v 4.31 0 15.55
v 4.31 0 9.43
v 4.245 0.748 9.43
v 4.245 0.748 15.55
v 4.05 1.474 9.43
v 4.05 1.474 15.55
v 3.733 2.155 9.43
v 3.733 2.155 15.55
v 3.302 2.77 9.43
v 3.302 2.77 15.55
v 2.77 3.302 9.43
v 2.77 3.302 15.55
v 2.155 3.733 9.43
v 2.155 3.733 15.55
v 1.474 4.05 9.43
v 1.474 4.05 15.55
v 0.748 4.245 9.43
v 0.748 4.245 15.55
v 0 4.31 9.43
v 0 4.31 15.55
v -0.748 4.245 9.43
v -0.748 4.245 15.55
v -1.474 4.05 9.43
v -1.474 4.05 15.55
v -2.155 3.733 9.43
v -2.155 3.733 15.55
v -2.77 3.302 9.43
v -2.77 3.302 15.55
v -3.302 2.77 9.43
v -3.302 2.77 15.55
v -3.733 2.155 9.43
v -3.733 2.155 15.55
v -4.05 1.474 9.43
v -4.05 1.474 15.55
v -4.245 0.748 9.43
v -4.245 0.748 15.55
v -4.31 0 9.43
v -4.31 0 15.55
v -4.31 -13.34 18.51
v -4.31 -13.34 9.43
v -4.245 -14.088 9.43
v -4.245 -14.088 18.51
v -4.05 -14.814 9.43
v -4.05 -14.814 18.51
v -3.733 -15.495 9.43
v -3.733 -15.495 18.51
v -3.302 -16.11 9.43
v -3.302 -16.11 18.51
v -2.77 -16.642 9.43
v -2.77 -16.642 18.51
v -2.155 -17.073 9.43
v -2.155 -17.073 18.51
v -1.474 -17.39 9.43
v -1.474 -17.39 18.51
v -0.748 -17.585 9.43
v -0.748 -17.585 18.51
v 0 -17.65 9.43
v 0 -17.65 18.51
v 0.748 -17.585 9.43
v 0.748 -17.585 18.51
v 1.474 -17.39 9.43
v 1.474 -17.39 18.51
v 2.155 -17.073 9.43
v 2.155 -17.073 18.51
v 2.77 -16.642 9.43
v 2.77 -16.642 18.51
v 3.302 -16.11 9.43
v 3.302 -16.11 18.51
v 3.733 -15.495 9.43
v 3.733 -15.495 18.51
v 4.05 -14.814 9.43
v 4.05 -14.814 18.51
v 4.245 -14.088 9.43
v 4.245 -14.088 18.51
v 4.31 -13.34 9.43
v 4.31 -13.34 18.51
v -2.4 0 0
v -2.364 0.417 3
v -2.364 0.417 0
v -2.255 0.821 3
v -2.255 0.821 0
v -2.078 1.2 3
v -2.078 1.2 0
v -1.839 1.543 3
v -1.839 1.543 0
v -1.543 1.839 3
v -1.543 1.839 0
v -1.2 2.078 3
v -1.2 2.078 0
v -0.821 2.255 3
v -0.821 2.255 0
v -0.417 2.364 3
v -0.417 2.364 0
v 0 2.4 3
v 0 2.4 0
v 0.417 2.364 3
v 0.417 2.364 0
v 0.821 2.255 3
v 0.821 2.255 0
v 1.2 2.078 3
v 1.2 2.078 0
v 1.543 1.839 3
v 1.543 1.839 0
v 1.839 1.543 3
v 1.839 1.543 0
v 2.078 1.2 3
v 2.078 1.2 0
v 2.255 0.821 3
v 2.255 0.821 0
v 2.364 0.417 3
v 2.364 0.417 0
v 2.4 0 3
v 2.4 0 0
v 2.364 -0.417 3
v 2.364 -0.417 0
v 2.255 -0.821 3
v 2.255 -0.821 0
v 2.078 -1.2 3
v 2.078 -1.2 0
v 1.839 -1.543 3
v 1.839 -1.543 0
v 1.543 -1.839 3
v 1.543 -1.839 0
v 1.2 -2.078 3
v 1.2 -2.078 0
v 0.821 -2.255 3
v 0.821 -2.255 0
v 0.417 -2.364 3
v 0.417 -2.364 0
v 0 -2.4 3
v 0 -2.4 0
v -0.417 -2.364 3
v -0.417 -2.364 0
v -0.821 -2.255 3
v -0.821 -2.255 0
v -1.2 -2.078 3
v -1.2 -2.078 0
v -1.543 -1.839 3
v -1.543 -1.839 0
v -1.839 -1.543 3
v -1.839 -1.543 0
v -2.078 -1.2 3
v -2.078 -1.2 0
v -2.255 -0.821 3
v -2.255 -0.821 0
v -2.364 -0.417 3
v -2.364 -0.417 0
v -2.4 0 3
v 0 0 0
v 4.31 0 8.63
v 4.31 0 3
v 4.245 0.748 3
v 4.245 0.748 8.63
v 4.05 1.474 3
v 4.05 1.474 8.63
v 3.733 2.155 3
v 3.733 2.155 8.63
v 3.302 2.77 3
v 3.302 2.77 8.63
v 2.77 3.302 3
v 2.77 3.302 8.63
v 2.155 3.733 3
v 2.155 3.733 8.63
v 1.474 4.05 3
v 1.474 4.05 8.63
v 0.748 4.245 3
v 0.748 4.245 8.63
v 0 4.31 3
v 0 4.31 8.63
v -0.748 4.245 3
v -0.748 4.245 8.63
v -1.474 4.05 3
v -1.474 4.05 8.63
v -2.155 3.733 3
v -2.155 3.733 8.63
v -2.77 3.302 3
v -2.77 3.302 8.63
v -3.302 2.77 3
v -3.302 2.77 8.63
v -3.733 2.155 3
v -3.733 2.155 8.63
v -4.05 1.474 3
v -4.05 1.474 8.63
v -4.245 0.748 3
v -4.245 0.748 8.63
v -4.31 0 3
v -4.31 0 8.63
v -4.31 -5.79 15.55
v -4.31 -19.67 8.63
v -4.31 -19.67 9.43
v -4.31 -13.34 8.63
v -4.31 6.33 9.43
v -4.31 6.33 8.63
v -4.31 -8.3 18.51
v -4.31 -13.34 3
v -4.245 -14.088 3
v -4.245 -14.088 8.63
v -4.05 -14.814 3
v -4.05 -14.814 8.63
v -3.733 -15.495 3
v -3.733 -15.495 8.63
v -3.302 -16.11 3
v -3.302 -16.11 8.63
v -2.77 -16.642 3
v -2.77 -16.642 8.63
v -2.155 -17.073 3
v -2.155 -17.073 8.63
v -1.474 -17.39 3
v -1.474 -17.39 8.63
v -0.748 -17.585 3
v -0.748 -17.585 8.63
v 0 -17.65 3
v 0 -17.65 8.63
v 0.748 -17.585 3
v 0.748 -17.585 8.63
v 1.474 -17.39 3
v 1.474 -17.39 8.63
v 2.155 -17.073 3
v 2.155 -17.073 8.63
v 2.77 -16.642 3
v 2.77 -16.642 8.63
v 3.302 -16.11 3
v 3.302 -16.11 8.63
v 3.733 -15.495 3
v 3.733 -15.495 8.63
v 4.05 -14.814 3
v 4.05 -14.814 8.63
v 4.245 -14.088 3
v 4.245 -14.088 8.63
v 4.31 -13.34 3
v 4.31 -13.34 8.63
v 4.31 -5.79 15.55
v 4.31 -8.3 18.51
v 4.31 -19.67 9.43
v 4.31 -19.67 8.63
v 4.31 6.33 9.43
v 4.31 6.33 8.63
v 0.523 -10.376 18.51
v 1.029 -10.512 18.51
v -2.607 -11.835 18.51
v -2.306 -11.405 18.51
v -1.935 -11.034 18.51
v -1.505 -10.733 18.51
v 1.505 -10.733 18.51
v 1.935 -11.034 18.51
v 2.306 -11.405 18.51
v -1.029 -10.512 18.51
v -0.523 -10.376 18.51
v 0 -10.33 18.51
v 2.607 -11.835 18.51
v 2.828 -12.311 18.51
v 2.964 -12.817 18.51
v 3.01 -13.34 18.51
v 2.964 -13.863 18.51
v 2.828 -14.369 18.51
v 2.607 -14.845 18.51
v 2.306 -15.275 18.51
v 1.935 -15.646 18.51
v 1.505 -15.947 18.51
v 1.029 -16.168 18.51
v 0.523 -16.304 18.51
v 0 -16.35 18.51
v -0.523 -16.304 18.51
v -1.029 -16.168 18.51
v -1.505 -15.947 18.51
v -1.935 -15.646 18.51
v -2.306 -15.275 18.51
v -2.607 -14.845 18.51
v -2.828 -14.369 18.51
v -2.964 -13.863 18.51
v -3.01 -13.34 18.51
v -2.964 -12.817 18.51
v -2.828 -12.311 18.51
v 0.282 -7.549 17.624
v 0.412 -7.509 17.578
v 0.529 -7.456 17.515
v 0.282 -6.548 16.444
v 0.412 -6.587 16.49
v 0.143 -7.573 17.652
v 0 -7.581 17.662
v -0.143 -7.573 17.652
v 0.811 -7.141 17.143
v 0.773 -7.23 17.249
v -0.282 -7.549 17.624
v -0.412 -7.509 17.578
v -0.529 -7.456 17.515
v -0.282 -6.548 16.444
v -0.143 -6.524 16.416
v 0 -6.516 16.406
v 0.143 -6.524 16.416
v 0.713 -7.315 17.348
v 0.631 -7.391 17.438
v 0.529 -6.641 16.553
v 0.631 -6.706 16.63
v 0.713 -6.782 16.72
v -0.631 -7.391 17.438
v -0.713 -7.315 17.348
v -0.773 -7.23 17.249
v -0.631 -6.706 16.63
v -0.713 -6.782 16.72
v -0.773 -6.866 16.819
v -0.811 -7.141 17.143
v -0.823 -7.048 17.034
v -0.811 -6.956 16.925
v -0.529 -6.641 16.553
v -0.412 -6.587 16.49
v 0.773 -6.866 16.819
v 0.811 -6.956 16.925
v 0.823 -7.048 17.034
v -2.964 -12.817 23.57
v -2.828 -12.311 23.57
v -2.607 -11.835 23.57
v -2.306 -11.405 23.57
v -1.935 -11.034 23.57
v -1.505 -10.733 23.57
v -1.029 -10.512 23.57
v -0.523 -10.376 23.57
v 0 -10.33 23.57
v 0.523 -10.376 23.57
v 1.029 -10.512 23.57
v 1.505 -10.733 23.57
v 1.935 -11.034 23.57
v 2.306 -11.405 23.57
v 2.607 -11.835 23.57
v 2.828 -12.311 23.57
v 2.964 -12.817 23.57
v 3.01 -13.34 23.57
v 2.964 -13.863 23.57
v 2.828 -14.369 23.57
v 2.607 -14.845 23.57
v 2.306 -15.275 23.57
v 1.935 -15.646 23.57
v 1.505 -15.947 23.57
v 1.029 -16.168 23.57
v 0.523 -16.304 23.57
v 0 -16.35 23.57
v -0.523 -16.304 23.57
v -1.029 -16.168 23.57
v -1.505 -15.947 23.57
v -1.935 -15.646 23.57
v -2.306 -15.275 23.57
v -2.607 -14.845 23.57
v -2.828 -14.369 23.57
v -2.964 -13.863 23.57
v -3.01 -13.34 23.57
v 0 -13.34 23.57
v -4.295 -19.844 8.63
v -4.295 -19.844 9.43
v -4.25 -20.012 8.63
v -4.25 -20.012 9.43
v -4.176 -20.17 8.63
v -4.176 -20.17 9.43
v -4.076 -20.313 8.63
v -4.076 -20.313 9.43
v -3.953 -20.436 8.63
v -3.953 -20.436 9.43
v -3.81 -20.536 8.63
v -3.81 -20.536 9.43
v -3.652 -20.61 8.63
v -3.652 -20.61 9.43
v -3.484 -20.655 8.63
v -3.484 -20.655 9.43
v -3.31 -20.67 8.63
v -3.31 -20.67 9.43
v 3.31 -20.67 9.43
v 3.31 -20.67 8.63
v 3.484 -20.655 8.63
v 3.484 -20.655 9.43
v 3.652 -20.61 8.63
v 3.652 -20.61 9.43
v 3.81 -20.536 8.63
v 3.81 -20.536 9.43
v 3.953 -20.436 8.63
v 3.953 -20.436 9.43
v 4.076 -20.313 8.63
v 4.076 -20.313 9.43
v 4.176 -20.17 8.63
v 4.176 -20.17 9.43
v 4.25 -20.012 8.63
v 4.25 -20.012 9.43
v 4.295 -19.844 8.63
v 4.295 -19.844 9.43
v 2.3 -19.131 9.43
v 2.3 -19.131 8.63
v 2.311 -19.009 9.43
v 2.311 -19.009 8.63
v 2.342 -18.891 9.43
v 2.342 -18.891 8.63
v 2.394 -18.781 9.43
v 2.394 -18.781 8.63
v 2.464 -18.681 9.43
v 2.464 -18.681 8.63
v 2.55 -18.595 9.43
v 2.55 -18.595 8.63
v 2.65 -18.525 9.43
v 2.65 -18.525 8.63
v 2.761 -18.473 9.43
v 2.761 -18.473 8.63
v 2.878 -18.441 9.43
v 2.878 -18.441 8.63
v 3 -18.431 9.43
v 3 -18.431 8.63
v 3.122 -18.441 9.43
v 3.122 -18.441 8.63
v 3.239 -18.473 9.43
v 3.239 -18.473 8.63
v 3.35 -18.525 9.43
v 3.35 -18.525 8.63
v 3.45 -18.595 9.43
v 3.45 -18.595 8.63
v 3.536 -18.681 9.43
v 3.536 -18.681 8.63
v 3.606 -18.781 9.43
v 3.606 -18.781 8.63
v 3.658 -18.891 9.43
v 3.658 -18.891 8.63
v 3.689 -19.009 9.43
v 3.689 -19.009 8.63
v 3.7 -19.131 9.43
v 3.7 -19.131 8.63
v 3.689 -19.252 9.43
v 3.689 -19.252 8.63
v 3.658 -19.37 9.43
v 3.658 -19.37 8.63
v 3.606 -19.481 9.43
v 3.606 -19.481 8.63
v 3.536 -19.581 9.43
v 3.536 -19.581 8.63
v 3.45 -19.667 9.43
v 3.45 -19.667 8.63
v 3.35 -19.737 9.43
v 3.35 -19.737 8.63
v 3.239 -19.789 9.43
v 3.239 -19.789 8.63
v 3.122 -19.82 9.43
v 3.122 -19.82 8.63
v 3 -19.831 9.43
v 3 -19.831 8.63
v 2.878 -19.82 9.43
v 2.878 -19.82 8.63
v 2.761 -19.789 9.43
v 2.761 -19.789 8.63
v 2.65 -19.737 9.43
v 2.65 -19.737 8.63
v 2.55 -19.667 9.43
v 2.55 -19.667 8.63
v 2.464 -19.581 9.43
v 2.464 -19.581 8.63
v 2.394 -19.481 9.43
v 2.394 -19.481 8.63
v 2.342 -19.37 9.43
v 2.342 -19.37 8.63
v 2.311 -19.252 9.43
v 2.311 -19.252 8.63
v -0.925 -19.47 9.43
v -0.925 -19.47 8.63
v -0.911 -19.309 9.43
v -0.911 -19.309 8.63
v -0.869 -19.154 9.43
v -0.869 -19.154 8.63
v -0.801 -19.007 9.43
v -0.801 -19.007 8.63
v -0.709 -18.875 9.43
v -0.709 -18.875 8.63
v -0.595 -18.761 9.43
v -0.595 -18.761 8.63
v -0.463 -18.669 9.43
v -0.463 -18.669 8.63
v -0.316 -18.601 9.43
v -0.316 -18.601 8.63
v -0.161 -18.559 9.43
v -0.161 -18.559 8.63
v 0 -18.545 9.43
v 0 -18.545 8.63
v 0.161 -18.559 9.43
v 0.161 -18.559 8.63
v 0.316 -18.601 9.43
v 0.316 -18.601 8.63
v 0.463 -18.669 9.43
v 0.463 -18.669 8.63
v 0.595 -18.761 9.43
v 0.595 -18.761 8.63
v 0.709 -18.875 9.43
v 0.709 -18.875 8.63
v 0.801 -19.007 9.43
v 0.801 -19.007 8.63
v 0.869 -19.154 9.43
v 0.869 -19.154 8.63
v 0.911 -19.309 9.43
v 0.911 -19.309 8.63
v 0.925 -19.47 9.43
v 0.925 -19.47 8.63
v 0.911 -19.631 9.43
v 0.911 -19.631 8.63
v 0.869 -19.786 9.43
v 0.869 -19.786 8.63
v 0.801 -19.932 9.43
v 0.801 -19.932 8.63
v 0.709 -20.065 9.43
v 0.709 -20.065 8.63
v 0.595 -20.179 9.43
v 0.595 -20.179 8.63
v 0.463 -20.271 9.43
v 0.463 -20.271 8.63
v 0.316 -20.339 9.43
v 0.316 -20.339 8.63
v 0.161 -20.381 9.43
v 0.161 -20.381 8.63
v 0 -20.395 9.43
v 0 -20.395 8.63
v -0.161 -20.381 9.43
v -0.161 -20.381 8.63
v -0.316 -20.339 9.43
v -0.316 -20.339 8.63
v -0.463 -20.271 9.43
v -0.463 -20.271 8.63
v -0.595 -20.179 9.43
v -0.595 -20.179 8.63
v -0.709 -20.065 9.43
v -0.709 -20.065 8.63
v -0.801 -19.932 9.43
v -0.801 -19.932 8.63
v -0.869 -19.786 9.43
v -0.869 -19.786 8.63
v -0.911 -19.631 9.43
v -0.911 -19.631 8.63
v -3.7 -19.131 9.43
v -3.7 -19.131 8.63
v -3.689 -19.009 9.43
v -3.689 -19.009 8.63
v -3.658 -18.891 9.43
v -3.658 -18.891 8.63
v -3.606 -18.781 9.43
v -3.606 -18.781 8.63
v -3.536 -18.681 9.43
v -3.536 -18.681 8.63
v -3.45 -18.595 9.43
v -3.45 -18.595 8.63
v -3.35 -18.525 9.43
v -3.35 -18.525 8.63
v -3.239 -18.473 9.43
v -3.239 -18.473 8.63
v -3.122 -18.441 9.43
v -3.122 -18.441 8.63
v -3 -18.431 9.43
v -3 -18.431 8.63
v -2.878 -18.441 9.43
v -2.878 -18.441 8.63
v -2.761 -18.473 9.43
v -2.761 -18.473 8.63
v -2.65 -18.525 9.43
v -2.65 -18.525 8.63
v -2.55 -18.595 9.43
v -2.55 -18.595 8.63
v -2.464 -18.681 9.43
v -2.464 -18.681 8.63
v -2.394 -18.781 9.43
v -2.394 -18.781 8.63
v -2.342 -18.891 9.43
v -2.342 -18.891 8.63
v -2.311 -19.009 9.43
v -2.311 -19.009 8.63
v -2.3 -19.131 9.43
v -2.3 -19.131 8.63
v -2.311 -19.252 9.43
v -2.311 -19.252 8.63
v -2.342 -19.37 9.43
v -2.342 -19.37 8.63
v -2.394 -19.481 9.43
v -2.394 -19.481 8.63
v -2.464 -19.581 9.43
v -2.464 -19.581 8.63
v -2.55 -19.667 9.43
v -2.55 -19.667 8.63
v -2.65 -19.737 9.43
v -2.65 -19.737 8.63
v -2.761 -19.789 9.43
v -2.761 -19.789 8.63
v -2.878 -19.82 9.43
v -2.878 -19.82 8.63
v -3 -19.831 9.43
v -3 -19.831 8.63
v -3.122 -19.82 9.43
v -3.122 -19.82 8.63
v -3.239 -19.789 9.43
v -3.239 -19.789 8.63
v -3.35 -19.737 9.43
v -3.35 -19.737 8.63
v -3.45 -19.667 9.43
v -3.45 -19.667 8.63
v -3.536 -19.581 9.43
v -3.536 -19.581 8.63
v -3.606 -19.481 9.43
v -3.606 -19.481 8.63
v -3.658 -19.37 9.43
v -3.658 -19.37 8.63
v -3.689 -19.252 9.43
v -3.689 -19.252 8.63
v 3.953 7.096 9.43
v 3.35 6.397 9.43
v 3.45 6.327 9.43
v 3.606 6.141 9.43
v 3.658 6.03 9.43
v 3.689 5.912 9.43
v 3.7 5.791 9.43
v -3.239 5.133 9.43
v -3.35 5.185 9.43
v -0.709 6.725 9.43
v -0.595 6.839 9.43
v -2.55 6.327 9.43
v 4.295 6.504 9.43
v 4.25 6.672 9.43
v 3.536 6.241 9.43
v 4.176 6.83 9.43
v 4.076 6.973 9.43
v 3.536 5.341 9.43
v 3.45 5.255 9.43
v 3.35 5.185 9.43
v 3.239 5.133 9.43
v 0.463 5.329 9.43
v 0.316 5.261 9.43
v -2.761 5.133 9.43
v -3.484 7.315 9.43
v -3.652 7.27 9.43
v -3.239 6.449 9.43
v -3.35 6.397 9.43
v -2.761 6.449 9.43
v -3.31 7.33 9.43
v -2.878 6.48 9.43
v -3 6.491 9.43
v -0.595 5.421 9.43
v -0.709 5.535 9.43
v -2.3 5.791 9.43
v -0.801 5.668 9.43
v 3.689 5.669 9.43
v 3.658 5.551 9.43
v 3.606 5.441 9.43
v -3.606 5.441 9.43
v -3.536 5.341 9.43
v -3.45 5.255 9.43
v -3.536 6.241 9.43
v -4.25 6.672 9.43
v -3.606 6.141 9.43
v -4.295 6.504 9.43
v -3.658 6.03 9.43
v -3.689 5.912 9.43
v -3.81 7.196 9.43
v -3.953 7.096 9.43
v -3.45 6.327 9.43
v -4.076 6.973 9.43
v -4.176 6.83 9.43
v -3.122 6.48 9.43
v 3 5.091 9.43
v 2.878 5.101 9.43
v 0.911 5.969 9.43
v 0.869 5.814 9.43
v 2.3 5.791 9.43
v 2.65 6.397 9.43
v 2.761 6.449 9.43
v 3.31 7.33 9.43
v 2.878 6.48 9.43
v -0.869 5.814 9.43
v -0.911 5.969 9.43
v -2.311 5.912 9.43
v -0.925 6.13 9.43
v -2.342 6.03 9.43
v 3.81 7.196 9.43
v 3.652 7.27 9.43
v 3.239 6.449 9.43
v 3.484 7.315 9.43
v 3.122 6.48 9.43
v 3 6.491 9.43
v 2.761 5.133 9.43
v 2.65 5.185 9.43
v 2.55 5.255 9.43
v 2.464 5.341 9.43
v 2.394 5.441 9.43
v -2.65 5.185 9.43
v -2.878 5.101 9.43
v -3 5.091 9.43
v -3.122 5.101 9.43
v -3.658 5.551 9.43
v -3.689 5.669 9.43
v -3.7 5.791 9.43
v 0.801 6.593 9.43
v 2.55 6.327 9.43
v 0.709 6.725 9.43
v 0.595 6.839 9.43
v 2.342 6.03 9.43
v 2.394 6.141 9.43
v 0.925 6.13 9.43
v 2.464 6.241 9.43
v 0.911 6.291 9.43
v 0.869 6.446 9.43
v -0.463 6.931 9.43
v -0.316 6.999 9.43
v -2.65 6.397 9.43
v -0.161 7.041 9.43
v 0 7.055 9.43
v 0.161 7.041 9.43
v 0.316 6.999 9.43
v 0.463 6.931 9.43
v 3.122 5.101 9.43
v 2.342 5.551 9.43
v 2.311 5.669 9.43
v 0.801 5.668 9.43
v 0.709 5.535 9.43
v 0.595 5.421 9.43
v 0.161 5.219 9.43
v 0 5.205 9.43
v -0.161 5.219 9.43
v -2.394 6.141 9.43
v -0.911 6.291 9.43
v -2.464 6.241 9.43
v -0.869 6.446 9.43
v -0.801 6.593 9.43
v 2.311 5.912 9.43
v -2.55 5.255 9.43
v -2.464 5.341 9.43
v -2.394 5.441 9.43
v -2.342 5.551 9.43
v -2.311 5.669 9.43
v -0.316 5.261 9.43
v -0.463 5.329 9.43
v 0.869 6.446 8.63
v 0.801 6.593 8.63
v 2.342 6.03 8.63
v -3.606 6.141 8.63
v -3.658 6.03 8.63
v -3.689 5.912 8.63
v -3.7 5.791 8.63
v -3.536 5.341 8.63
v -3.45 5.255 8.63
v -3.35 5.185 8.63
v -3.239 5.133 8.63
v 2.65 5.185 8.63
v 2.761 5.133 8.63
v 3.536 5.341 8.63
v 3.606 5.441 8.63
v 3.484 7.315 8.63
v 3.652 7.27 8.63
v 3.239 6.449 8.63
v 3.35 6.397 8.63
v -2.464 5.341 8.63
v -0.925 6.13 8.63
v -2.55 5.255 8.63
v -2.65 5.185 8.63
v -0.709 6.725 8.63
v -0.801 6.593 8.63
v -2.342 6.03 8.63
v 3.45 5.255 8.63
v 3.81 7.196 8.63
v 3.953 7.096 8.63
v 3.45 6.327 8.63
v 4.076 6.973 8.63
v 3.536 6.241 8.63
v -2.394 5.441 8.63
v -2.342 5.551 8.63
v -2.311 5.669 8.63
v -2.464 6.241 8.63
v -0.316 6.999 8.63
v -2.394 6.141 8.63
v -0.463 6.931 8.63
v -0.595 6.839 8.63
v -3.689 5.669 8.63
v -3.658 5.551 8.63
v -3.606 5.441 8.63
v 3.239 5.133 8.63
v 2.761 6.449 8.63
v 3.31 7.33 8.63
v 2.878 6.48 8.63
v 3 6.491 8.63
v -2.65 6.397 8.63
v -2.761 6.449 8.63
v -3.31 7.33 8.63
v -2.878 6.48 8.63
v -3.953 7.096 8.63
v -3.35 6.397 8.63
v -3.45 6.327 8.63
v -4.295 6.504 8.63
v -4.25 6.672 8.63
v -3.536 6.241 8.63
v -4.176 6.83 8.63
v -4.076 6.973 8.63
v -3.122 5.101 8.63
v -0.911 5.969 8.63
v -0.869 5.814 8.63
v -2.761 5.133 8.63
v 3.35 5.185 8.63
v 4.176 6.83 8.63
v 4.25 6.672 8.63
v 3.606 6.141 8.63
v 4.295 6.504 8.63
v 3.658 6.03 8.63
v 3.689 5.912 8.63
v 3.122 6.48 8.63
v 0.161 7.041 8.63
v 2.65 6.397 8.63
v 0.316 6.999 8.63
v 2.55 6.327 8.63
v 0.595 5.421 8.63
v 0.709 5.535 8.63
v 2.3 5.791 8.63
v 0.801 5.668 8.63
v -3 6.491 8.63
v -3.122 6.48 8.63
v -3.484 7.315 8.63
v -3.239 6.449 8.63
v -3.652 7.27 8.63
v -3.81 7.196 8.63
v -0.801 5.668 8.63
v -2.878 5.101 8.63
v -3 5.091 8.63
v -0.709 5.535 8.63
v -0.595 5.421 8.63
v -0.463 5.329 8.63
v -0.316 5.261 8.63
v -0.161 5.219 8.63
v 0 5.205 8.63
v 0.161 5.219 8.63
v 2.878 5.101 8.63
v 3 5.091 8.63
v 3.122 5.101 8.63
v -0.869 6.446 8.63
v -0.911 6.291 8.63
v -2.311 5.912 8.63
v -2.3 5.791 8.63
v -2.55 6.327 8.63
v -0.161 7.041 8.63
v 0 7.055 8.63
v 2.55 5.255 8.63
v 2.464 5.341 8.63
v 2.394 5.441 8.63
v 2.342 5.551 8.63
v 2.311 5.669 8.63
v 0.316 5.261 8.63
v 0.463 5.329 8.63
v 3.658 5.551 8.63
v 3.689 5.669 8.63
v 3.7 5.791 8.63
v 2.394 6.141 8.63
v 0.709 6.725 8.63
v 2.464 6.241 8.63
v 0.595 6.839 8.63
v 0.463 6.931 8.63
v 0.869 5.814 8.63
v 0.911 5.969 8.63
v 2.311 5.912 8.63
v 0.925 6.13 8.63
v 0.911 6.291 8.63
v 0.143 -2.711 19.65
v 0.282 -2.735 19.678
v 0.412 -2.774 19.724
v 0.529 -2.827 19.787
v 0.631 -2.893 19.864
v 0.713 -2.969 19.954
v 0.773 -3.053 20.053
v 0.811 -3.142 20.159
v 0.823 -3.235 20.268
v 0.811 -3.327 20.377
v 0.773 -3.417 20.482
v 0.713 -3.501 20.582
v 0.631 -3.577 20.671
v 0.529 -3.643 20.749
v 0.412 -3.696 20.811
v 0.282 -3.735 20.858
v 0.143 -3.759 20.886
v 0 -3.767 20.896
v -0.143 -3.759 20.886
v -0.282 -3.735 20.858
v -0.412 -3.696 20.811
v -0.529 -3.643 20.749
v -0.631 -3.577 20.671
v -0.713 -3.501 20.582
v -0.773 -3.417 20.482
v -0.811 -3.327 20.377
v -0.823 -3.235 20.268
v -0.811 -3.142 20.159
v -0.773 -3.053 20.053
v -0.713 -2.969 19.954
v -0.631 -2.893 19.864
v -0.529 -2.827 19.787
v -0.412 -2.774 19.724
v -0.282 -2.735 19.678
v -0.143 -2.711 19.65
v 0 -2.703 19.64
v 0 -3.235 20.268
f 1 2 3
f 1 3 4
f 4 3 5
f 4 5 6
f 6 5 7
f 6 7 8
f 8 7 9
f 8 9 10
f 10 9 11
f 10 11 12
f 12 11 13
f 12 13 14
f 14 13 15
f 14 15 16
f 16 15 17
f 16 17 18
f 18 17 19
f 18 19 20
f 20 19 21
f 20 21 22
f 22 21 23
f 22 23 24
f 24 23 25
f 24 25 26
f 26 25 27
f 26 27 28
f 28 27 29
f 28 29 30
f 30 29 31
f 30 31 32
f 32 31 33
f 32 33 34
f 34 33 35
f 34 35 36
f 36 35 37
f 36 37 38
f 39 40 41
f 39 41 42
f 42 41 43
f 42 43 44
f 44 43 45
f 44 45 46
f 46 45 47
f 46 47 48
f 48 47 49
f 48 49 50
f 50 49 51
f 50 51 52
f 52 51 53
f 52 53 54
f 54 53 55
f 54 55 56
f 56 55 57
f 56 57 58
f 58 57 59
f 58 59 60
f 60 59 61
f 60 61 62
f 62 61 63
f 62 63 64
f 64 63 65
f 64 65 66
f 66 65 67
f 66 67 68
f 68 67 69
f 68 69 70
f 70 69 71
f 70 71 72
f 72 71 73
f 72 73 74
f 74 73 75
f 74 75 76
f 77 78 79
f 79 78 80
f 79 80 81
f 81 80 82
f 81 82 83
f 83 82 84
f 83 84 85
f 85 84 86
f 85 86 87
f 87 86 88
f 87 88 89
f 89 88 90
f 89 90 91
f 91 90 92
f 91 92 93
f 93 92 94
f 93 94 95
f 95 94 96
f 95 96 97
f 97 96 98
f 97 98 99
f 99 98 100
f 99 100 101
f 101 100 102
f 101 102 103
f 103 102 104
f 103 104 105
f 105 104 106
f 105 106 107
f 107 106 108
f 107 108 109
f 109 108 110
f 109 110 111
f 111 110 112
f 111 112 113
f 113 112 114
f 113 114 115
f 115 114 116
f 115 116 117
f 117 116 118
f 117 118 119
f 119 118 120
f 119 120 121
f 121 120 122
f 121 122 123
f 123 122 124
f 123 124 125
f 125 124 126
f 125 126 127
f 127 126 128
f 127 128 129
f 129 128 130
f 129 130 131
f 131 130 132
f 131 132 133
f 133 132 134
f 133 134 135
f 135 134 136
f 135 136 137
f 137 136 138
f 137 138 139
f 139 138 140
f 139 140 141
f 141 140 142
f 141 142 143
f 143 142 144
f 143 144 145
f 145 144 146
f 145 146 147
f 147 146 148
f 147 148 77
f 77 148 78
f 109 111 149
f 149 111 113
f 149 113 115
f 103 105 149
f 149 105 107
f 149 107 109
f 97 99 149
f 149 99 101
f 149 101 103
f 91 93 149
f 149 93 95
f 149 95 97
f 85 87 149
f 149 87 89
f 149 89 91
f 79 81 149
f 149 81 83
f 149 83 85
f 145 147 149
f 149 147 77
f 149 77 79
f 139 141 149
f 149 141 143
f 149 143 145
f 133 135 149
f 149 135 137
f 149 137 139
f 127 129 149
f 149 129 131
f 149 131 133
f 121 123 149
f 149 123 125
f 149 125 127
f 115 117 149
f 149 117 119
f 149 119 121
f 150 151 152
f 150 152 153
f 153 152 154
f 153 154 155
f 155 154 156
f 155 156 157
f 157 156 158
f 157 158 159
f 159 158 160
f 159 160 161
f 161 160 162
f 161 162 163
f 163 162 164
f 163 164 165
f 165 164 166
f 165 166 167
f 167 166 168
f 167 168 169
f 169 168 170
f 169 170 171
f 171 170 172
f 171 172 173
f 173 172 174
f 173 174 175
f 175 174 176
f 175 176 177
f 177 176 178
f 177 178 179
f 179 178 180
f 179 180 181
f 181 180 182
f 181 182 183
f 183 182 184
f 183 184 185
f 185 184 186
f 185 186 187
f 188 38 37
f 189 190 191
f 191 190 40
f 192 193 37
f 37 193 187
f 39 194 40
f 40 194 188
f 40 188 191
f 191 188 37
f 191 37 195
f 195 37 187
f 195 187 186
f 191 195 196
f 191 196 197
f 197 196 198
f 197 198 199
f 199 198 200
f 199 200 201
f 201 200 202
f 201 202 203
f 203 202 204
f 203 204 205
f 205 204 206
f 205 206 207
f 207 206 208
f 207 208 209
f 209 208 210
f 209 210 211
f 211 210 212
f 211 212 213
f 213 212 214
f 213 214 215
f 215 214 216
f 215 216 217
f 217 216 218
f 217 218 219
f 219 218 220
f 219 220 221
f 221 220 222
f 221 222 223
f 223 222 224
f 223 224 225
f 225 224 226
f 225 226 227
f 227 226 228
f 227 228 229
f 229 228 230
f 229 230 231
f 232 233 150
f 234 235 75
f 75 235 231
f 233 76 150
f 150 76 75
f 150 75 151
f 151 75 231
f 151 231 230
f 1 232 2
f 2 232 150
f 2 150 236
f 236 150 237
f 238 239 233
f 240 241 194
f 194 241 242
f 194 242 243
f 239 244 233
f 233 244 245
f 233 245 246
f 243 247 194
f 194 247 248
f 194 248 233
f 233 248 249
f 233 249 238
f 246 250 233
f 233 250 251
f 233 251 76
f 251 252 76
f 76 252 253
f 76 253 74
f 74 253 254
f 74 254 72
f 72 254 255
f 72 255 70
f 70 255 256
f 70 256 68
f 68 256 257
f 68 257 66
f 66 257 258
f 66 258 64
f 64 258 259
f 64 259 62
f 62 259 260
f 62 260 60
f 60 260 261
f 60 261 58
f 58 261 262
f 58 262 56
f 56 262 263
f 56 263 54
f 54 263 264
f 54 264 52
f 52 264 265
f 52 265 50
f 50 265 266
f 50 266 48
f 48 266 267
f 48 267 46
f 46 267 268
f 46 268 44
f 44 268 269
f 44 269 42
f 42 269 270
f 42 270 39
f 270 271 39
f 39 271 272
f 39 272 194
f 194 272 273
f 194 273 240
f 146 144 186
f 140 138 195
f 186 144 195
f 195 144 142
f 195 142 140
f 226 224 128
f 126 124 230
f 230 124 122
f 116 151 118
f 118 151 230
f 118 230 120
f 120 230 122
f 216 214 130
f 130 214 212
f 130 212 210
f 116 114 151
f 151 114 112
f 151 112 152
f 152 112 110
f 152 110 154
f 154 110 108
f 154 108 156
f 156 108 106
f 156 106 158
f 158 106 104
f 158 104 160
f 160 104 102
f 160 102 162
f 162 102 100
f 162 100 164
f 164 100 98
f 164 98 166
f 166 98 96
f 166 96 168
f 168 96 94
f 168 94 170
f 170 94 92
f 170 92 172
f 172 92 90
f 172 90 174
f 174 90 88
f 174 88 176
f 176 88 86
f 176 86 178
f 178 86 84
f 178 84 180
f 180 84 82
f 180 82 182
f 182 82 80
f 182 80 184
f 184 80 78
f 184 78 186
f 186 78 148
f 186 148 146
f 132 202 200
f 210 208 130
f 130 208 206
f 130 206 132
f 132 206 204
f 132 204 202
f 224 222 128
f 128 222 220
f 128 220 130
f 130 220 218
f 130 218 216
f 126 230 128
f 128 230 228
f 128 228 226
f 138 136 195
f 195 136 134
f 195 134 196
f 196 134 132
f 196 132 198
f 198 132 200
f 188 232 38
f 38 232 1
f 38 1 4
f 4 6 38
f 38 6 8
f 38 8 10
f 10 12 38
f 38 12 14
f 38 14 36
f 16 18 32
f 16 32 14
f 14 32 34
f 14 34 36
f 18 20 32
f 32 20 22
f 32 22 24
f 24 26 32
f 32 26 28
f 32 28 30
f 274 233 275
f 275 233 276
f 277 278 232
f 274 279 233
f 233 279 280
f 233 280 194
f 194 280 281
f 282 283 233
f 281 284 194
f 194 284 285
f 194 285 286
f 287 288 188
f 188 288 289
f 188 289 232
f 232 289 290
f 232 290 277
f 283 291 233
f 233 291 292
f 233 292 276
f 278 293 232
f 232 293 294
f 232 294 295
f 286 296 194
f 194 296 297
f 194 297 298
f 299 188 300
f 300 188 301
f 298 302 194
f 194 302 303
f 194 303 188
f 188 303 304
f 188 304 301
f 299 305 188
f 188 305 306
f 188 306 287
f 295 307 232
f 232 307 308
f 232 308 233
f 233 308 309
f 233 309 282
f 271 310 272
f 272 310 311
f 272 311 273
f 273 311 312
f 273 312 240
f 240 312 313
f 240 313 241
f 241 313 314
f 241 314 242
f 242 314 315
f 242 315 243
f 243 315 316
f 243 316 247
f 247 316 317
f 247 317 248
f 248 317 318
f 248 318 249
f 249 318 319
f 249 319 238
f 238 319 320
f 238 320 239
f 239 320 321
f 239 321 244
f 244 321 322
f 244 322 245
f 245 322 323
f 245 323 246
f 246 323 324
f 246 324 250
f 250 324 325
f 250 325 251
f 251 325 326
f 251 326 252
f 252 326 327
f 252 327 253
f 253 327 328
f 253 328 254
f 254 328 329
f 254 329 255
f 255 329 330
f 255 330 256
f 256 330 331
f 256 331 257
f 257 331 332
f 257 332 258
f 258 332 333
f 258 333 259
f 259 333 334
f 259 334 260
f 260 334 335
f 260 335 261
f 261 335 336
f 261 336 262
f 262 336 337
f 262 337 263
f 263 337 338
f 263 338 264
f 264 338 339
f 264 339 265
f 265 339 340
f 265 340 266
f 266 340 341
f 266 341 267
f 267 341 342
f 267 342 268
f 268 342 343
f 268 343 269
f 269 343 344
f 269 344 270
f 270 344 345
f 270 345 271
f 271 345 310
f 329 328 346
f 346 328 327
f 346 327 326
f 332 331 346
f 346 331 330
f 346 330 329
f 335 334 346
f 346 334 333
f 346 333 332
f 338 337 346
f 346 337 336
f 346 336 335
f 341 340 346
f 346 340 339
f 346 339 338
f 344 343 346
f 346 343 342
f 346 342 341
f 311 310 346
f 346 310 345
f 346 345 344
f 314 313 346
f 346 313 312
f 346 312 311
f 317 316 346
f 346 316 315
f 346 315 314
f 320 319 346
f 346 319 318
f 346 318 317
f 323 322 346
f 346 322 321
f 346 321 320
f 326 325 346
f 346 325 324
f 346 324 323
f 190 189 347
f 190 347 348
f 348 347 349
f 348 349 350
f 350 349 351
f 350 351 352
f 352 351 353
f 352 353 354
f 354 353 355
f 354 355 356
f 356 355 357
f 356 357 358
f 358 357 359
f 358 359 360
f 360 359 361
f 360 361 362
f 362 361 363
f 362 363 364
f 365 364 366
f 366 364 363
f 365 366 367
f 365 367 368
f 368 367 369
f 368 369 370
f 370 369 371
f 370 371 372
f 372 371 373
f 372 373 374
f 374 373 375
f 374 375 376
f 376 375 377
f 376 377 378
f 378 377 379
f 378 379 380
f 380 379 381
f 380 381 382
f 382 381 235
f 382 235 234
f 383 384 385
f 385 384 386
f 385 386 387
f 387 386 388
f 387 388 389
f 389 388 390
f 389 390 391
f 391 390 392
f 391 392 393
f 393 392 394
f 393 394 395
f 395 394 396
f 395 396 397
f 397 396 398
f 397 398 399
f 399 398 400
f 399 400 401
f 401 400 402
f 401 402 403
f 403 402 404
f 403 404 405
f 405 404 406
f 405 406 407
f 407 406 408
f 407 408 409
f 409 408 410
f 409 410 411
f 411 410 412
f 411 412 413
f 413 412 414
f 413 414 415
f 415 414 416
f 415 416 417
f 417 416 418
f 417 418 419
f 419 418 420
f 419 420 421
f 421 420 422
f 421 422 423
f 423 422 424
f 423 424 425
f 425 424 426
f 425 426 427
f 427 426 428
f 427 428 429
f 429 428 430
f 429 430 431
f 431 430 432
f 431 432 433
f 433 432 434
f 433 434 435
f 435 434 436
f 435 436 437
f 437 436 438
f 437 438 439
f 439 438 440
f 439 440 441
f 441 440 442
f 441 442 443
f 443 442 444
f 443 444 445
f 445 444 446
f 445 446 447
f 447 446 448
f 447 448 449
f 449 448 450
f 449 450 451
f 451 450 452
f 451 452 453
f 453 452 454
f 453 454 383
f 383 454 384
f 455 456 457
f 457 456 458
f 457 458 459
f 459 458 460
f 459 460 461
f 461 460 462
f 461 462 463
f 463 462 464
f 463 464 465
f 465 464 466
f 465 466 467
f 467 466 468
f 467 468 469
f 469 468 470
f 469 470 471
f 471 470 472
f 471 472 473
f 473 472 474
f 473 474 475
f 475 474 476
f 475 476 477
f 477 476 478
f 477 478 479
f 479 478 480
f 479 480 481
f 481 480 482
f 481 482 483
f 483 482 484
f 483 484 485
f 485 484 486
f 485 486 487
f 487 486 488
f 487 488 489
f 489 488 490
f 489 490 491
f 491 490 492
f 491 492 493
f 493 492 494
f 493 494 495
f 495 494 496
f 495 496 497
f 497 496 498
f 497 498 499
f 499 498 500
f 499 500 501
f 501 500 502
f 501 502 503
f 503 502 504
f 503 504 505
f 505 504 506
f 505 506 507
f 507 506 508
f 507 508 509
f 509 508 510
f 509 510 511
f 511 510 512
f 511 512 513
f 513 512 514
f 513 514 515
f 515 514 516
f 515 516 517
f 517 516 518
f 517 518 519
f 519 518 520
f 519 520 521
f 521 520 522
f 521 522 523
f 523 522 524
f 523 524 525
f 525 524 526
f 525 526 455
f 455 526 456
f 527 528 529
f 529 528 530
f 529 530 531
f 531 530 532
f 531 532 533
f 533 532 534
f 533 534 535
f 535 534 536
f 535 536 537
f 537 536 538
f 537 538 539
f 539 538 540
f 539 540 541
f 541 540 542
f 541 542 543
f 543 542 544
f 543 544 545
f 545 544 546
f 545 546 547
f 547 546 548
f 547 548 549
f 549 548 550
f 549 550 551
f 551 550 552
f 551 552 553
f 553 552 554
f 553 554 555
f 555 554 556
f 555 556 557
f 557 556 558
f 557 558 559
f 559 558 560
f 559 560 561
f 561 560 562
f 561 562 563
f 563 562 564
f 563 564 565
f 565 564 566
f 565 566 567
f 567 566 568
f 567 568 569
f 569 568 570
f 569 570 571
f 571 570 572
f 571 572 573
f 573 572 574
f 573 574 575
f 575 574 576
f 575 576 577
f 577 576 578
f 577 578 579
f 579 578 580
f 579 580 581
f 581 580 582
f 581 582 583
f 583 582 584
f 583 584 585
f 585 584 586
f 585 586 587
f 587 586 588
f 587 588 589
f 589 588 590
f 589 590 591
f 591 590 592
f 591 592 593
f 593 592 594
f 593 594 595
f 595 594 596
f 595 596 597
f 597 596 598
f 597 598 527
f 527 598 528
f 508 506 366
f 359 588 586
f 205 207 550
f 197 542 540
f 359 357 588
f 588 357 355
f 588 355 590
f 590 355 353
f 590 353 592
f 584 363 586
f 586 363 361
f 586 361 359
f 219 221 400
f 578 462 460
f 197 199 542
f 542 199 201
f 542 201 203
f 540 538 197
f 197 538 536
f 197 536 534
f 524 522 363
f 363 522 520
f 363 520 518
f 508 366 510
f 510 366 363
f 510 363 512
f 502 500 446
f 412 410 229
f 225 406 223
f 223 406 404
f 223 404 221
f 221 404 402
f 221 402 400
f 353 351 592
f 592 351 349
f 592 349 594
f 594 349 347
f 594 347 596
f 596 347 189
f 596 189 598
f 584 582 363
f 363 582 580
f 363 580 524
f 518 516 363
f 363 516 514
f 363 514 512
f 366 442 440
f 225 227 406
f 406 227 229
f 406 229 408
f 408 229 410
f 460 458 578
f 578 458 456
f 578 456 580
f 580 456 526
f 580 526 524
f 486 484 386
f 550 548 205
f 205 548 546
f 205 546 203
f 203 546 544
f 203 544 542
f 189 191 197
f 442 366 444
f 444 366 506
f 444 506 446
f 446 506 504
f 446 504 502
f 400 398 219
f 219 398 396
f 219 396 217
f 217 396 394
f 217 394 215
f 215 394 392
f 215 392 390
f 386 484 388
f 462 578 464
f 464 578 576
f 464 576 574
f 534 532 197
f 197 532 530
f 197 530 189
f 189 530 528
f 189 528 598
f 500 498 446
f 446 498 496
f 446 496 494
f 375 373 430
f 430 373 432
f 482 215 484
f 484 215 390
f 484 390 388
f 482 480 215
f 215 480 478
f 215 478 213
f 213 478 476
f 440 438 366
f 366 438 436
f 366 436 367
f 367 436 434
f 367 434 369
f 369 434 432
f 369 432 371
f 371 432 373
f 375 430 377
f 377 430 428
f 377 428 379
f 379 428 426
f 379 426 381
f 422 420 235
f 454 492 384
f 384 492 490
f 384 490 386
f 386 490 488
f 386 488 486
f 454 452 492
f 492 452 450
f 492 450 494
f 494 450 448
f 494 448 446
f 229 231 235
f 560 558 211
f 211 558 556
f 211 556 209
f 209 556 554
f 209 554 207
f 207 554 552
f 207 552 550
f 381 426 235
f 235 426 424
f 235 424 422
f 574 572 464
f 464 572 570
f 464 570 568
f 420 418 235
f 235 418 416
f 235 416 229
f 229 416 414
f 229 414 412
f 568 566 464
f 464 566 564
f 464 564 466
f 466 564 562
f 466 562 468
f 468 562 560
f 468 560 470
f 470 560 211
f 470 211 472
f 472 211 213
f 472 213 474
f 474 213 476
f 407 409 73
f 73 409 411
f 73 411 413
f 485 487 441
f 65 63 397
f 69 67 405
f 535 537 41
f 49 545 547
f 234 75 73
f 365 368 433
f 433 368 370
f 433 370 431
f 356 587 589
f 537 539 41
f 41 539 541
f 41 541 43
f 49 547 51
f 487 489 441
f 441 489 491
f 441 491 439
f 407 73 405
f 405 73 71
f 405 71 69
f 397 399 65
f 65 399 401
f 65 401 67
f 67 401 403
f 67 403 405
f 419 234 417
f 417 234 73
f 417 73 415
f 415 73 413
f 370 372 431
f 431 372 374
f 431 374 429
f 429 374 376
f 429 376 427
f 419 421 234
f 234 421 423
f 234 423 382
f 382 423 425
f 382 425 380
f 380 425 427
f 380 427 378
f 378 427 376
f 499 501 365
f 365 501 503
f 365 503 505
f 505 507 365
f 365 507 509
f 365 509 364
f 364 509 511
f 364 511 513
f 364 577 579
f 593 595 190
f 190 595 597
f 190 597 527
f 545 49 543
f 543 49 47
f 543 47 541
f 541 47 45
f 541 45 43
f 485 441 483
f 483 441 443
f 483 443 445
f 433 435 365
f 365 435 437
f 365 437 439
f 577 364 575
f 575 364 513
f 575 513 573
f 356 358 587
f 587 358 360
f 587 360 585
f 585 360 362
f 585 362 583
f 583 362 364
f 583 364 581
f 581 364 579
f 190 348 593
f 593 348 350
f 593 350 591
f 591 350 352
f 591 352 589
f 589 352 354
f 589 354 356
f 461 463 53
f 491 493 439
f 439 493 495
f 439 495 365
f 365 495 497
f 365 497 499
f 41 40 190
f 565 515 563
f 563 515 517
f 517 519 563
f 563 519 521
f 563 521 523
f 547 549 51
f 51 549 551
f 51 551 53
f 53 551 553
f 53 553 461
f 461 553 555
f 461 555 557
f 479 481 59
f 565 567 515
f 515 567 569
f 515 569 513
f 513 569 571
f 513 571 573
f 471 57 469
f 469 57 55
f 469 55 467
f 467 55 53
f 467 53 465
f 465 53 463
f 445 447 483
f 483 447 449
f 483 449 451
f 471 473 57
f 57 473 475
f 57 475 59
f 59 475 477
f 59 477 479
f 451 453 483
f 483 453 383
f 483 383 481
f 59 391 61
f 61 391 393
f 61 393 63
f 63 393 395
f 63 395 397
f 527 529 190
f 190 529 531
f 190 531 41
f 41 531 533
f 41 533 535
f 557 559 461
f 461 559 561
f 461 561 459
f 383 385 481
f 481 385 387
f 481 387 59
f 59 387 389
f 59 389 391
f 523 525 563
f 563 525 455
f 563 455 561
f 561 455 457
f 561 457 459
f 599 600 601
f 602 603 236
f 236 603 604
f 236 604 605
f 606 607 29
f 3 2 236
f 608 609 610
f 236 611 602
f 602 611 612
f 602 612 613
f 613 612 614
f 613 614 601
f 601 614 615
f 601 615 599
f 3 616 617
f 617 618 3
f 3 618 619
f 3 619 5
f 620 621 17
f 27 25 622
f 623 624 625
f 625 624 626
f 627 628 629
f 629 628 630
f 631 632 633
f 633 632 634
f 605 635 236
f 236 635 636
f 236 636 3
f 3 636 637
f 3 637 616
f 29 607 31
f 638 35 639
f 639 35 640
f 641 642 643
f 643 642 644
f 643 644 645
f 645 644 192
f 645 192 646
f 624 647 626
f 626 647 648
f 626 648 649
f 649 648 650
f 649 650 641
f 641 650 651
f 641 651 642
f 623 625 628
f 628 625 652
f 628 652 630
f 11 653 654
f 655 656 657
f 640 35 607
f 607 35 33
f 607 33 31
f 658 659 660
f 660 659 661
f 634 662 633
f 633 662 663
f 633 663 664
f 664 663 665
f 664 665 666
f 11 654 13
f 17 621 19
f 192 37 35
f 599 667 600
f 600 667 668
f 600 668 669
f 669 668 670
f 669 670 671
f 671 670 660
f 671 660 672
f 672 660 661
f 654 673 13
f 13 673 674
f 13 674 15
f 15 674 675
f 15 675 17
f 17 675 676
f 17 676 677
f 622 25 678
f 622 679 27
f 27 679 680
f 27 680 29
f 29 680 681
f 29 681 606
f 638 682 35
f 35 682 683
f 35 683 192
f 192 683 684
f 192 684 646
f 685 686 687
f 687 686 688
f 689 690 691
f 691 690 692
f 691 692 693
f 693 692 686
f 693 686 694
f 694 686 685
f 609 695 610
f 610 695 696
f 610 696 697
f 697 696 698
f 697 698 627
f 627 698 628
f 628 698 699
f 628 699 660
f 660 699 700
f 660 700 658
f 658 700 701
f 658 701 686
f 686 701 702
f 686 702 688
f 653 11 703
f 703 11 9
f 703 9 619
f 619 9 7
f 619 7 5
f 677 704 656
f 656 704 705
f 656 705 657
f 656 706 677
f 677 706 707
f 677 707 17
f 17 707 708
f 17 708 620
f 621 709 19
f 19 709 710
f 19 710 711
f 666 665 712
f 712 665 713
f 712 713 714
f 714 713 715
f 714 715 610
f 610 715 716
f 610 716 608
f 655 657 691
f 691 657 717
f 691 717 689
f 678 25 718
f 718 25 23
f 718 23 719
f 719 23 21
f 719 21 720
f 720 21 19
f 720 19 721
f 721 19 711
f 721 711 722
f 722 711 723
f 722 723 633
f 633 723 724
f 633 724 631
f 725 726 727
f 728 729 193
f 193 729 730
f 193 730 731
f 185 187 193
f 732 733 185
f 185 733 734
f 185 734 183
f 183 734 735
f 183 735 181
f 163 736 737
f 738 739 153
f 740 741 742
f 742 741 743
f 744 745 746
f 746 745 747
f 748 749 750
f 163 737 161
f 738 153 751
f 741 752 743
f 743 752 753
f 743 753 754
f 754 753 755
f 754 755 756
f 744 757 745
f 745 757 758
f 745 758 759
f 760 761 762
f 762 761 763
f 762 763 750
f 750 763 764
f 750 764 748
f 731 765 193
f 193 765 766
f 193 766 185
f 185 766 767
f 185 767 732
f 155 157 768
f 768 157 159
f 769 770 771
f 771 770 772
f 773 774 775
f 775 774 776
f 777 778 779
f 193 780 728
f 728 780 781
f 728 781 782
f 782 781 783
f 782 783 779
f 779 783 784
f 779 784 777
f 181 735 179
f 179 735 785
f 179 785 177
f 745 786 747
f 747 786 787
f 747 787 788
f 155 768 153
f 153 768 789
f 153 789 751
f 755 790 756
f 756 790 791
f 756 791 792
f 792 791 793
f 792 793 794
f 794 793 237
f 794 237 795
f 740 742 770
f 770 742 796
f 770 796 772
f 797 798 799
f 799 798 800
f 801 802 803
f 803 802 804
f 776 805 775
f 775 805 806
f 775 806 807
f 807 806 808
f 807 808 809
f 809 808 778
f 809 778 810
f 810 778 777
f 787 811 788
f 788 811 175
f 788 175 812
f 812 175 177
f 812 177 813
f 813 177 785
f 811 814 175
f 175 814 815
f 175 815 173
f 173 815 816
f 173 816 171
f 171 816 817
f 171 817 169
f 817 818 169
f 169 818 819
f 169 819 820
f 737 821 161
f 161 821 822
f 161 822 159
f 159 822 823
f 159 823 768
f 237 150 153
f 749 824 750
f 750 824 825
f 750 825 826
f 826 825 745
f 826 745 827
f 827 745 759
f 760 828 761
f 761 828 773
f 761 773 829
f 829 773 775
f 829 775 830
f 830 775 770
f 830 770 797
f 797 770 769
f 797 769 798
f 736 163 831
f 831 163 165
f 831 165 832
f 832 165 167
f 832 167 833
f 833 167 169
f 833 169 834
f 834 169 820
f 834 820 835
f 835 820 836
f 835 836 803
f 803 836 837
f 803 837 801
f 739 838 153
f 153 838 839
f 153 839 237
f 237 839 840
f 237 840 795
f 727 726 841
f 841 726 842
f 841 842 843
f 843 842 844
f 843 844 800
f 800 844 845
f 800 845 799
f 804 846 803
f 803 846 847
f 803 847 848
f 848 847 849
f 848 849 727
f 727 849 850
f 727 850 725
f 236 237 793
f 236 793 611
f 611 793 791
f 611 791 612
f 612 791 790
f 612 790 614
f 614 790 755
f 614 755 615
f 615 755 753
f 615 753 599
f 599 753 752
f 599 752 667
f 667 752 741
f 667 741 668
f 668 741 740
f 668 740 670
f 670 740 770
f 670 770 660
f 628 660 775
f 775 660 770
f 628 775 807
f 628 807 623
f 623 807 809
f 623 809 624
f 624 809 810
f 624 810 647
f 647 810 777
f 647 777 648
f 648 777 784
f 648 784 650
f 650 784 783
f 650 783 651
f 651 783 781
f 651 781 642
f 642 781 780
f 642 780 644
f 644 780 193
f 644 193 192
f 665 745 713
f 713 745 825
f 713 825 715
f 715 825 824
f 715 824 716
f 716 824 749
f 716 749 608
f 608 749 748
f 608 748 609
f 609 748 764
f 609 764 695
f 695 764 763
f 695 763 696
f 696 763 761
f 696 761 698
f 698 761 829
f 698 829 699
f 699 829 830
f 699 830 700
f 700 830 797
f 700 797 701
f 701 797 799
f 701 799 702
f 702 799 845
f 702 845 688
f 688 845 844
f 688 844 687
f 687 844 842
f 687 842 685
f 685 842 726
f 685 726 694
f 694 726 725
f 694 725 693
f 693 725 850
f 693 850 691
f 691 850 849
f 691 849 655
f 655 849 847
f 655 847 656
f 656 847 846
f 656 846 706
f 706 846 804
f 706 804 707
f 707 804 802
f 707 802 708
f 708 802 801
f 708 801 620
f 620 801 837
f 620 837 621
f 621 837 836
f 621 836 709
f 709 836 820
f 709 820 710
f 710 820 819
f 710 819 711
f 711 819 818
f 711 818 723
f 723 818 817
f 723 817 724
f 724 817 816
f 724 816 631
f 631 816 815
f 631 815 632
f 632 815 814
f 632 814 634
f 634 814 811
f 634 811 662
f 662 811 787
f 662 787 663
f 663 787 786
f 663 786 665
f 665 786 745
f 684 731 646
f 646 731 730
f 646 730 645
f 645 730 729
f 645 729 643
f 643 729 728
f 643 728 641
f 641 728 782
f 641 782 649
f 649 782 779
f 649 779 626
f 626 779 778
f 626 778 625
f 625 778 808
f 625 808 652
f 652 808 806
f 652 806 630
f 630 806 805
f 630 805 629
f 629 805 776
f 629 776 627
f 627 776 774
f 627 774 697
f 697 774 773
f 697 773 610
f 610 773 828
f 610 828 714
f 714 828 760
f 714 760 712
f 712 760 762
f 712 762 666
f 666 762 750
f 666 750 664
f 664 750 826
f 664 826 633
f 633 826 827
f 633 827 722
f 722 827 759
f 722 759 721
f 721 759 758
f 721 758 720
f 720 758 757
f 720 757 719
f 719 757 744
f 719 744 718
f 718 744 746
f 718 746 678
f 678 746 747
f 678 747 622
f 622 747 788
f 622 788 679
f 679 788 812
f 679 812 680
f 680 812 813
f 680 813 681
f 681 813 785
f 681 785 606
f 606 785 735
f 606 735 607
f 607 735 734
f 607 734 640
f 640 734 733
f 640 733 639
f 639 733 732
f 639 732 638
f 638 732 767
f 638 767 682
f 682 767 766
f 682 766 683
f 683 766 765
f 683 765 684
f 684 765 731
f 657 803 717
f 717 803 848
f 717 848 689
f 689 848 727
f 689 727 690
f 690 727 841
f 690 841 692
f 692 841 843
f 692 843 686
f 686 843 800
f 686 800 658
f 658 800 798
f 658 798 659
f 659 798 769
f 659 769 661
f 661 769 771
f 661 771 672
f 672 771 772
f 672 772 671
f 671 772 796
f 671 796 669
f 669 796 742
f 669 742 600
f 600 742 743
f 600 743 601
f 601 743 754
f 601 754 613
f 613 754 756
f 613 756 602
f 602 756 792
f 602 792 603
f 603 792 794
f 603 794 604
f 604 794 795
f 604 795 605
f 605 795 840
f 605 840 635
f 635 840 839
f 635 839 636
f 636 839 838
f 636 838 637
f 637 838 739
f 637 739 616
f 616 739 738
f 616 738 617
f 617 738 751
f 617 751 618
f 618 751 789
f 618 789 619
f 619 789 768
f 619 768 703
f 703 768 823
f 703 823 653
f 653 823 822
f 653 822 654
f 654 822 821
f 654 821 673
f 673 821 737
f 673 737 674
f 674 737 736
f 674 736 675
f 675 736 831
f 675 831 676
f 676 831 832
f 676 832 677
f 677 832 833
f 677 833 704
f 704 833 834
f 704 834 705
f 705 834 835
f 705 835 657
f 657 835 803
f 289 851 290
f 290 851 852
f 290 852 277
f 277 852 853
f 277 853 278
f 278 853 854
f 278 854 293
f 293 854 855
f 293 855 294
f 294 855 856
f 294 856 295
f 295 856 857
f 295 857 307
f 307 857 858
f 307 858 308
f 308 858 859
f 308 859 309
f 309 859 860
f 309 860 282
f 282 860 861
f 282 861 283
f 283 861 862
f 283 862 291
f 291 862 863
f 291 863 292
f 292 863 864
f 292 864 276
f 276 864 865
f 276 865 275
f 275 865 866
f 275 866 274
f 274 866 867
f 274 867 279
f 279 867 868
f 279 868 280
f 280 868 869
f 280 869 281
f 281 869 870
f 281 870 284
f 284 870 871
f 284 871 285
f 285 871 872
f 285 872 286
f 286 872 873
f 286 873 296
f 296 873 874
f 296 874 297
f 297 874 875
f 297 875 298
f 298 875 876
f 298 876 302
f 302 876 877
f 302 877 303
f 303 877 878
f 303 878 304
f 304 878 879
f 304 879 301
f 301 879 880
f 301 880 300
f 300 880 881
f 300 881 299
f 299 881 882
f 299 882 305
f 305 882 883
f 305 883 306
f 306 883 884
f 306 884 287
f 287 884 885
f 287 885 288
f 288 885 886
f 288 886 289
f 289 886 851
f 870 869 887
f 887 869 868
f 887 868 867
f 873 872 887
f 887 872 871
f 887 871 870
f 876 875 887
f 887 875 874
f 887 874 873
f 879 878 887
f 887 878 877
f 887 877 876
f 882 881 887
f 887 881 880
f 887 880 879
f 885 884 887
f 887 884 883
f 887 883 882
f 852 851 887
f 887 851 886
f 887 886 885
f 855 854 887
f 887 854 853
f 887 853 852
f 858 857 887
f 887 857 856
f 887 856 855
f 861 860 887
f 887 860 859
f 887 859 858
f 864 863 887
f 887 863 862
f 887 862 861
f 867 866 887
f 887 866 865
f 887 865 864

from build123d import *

# Parameters (mm, degrees)
SKETCH1_R               = 2.4
BOSS_EXTRUDE1_DEPTH     = 3
BOSS_EXTRUDE2_DEPTH     = 15.51
CUT_EXTRUDE1_DEPTH      = 5.31
CUT_EXTRUDE1_DEPTH_BACK = 5.31
SKETCH4_R               = 3.01
BOSS_EXTRUDE3_DEPTH     = 5.06
SKETCH5_R               = 0.925
SKETCH5_R_2             = 0.7
BOSS_EXTRUDE4_DEPTH     = 0.8
SKETCH6_R               = 0.823117729
BOSS_EXTRUDE5_DEPTH     = 5


with BuildPart() as part:
    # Sketch1 → Boss-Extrude1 (new body)
    with BuildSketch(Plane.XY):
        Circle(SKETCH1_R)
    extrude(amount=BOSS_EXTRUDE1_DEPTH)

    # Sketch2 → Boss-Extrude2 (add)
    with BuildSketch(Plane.XY.offset(3)):
        with BuildLine():
            Line((4.31, 0), (4.31, -13.34))
            ThreePointArc((4.31, -13.34), (0, -17.65), (-4.31, -13.34))
            Line((-4.31, -13.34), (-4.31, 0))
            ThreePointArc((-4.31, 0), (0, 4.31), (4.31, 0))
        make_face()
    extrude(amount=BOSS_EXTRUDE2_DEPTH)

    # Sketch3 → Cut-Extrude1 (cut, two sides)
    with BuildSketch(Plane(origin=(0, 0, 0), x_dir=(0, 0, -1), z_dir=(1, 0, 0))) as cut_extrude1_sk:
        Polygon((-18.51, 4.31), (-15.55, 4.31), (-15.55, -5.79), (-18.51, -8.3), align=None)
    extrude(amount=CUT_EXTRUDE1_DEPTH, mode=Mode.SUBTRACT)
    extrude(cut_extrude1_sk.sketch, amount=-CUT_EXTRUDE1_DEPTH_BACK, mode=Mode.SUBTRACT)

    # Sketch4 → Boss-Extrude3 (add)
    with BuildSketch(Plane.XY.offset(18.51)):
        with Locations((0, -13.34)):
            Circle(SKETCH4_R)
    extrude(amount=BOSS_EXTRUDE3_DEPTH)

    # Sketch5 → Boss-Extrude4 (add)
    with BuildSketch(Plane(origin=(0, 0, 8.63), x_dir=(-1, 0, 0), z_dir=(0, 0, -1))):
        with BuildLine():
            Line((-3.31, 7.33), (3.31, 7.33))
            ThreePointArc((3.31, 7.33), (4.017106781, 7.037106781), (4.31, 6.33))
            Line((4.31, 6.33), (4.31, -19.67))
            ThreePointArc((4.31, -19.67), (4.017106781, -20.377106781), (3.31, -20.67))
            Line((3.31, -20.67), (-3.31, -20.67))
            ThreePointArc((-3.31, -20.67), (-4.017106781, -20.377106781), (-4.31, -19.67))
            Line((-4.31, -19.67), (-4.31, 6.33))
            ThreePointArc((-4.31, 6.33), (-4.017106781, 7.037106781), (-3.31, 7.33))
        make_face()
        with Locations((0, 6.13)):
            Circle(SKETCH5_R, mode=Mode.SUBTRACT)
        with Locations((3, 5.79076381)):
            Circle(SKETCH5_R_2, mode=Mode.SUBTRACT)
        with Locations((-3, 5.79076381)):
            Circle(SKETCH5_R_2, mode=Mode.SUBTRACT)
        with Locations((3, -19.13076381)):
            Circle(SKETCH5_R_2, mode=Mode.SUBTRACT)
        with Locations((0, -19.47)):
            Circle(SKETCH5_R, mode=Mode.SUBTRACT)
        with Locations((-3, -19.13076381)):
            Circle(SKETCH5_R_2, mode=Mode.SUBTRACT)
    extrude(amount=-BOSS_EXTRUDE4_DEPTH)

    # Sketch6 → Boss-Extrude5 (add)
    with BuildSketch(Plane(origin=(0, 4.302344091, 3.64827151), x_dir=(1, 0, 0), z_dir=(0, 0.7627017, 0.646750428))):
        with Locations((0, -17.550441075)):
            Circle(SKETCH6_R)
    extrude(amount=BOSS_EXTRUDE5_DEPTH)


solid = part.part
